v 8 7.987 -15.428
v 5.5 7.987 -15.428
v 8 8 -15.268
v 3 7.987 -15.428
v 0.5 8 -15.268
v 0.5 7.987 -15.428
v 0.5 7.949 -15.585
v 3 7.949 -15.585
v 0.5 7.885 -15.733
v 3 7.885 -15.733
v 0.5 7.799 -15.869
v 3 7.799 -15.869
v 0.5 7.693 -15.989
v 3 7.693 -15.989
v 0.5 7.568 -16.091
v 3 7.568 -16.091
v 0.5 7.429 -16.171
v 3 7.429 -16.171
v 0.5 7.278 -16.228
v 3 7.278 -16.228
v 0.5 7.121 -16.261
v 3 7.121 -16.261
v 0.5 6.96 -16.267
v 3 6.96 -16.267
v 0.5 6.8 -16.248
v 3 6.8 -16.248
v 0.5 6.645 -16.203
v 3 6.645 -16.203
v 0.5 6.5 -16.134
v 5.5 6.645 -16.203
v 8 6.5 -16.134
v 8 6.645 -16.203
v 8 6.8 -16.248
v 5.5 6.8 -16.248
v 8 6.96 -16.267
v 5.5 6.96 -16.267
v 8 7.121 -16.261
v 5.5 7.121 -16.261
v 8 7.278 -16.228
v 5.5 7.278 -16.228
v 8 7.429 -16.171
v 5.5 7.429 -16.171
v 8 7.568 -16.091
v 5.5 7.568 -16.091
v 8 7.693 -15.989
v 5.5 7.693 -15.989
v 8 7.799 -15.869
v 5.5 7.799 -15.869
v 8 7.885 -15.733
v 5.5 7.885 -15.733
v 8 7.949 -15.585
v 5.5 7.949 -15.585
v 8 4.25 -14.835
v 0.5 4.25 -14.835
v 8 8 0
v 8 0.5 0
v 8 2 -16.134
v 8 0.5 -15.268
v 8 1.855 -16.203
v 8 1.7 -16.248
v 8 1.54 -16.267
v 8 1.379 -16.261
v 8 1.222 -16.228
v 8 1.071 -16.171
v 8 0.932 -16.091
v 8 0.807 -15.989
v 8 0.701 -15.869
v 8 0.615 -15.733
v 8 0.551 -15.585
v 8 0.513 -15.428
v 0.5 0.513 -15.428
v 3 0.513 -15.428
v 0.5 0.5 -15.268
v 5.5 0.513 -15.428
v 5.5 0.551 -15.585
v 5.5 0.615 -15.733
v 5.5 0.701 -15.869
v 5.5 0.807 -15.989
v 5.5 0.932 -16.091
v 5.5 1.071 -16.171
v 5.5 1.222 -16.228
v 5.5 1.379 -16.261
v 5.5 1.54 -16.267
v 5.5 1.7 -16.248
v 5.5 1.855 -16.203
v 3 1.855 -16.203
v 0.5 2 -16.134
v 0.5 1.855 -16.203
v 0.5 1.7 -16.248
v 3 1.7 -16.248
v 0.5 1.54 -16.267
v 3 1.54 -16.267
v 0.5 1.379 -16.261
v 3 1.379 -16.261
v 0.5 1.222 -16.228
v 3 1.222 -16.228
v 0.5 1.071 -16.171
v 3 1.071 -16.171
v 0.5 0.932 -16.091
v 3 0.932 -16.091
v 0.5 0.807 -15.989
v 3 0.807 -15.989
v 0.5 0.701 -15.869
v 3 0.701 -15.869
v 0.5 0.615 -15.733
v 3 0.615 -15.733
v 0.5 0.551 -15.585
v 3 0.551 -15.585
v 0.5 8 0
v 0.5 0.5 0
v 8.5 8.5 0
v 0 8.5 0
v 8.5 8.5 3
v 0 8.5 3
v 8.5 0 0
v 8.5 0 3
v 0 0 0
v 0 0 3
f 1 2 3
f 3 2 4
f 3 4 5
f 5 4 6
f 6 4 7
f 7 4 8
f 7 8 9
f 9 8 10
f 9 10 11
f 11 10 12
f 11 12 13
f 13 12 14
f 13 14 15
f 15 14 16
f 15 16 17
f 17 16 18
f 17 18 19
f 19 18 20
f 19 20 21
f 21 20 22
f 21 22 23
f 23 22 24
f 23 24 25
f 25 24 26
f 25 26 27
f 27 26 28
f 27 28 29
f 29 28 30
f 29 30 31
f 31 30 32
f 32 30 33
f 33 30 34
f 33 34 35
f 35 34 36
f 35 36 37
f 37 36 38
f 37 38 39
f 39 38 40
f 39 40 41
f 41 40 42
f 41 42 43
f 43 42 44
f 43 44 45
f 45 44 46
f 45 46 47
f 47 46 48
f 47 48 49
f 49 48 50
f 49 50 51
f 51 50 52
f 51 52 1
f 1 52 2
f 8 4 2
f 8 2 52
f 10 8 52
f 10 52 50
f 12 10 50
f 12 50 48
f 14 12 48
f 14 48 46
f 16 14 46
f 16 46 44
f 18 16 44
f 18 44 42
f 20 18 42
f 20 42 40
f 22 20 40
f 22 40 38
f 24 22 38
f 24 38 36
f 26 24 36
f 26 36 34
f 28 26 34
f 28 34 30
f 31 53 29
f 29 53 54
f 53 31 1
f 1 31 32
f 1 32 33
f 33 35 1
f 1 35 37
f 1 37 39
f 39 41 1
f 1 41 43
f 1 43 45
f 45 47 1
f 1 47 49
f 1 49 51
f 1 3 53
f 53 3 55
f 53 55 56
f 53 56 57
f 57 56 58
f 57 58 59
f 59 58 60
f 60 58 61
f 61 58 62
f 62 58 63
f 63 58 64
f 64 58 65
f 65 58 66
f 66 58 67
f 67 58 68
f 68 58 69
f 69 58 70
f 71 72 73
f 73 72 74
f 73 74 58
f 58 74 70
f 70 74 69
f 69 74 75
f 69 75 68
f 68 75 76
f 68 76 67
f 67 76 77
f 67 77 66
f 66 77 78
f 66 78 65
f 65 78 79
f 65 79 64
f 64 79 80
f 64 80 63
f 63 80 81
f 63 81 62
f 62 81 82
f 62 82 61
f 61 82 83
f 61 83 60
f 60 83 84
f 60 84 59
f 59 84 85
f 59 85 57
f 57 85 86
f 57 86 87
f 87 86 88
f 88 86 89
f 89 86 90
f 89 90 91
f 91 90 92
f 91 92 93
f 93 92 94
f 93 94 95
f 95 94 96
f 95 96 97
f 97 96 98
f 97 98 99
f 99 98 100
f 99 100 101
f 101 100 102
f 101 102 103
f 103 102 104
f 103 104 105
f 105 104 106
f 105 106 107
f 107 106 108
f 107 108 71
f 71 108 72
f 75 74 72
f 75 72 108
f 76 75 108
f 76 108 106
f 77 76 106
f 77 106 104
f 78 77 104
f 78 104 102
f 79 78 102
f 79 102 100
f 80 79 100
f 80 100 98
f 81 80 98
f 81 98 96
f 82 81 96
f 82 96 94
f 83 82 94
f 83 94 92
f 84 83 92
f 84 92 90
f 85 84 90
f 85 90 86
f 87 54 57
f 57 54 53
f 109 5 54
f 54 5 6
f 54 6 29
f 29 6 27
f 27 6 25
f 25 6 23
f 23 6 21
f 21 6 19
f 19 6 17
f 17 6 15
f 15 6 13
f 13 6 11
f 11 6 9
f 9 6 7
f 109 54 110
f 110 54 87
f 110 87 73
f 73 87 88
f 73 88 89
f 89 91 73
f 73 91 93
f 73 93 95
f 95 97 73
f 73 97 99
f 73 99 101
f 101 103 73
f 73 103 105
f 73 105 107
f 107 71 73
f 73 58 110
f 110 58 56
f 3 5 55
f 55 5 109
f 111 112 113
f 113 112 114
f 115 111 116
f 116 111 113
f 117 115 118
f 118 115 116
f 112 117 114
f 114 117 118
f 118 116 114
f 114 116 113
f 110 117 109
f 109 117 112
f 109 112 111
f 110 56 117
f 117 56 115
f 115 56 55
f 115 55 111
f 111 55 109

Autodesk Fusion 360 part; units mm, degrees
sketch "Sketch1" plane through (0, 0, 0) normal (0, 0, 1) x (1, 0, 0)
  line L0 (0, 0) -> (8.5, 0)
  line L1 (8.5, 0) -> (8.5, 8.5)
  line L2 (8.5, 8.5) -> (0, 8.5)
  line L3 (0, 8.5) -> (0, 0)
  dimension "d1" = 8.5
extrude "Extrude1" add sketch "Sketch1" along normal blind 3
sketch "Sketch2" plane through (0, 0, 0) normal (0, 0, -1) x (1, 0, 0)
  line L0 (0, 0) -> (0, -8.5)
  line L1 (0, -8.5) -> (8.5, -8.5)
  line L2 (8.5, -8.5) -> (8.5, 0)
  line L3 (8.5, 0) -> (0, 0)
  line L4 (0.5, -0.5) -> (8, -0.5)
  line L5 (8, -0.5) -> (8, -8)
  line L6 (8, -8) -> (0.5, -8)
  line L7 (0.5, -8) -> (0.5, -0.5)
  line L8 (0.5, -0.5) -> (8, -8) construction
  line L9 (8.5, 0) -> (0, -8.5) construction
  dimension "d4" = 7.5
extrude "Extrude2" add sketch "Sketch2" along normal blind 17 contours L4 L5 L6 L7
sketch "Sketch3" plane through (8, 0, 0) normal (1, 0, 0) x (0, 1, 0)
  line L0 (8, 0) -> (0.5, 0)
  line L1 (0.5, 0) -> (0.5, -17)
  line L2 (0.5, -17) -> (8, -17)
  line L3 (8, -17) -> (8, 0)
  line L4 (0.5, -17) -> (4.25, -14.8349)
  line L5 (4.25, -14.8349) -> (8, -17)
  line L6 (8, -17) -> (0.5, -17)
  dimension "d7" = 120
extrude "Extrude3" cut sketch "Sketch3" against normal through all contours L2 L4 L5 L6
fillet "Fillet1" radius 1 2 edges at (4.25, 0.5, -17) (4.25, 8, -17)
